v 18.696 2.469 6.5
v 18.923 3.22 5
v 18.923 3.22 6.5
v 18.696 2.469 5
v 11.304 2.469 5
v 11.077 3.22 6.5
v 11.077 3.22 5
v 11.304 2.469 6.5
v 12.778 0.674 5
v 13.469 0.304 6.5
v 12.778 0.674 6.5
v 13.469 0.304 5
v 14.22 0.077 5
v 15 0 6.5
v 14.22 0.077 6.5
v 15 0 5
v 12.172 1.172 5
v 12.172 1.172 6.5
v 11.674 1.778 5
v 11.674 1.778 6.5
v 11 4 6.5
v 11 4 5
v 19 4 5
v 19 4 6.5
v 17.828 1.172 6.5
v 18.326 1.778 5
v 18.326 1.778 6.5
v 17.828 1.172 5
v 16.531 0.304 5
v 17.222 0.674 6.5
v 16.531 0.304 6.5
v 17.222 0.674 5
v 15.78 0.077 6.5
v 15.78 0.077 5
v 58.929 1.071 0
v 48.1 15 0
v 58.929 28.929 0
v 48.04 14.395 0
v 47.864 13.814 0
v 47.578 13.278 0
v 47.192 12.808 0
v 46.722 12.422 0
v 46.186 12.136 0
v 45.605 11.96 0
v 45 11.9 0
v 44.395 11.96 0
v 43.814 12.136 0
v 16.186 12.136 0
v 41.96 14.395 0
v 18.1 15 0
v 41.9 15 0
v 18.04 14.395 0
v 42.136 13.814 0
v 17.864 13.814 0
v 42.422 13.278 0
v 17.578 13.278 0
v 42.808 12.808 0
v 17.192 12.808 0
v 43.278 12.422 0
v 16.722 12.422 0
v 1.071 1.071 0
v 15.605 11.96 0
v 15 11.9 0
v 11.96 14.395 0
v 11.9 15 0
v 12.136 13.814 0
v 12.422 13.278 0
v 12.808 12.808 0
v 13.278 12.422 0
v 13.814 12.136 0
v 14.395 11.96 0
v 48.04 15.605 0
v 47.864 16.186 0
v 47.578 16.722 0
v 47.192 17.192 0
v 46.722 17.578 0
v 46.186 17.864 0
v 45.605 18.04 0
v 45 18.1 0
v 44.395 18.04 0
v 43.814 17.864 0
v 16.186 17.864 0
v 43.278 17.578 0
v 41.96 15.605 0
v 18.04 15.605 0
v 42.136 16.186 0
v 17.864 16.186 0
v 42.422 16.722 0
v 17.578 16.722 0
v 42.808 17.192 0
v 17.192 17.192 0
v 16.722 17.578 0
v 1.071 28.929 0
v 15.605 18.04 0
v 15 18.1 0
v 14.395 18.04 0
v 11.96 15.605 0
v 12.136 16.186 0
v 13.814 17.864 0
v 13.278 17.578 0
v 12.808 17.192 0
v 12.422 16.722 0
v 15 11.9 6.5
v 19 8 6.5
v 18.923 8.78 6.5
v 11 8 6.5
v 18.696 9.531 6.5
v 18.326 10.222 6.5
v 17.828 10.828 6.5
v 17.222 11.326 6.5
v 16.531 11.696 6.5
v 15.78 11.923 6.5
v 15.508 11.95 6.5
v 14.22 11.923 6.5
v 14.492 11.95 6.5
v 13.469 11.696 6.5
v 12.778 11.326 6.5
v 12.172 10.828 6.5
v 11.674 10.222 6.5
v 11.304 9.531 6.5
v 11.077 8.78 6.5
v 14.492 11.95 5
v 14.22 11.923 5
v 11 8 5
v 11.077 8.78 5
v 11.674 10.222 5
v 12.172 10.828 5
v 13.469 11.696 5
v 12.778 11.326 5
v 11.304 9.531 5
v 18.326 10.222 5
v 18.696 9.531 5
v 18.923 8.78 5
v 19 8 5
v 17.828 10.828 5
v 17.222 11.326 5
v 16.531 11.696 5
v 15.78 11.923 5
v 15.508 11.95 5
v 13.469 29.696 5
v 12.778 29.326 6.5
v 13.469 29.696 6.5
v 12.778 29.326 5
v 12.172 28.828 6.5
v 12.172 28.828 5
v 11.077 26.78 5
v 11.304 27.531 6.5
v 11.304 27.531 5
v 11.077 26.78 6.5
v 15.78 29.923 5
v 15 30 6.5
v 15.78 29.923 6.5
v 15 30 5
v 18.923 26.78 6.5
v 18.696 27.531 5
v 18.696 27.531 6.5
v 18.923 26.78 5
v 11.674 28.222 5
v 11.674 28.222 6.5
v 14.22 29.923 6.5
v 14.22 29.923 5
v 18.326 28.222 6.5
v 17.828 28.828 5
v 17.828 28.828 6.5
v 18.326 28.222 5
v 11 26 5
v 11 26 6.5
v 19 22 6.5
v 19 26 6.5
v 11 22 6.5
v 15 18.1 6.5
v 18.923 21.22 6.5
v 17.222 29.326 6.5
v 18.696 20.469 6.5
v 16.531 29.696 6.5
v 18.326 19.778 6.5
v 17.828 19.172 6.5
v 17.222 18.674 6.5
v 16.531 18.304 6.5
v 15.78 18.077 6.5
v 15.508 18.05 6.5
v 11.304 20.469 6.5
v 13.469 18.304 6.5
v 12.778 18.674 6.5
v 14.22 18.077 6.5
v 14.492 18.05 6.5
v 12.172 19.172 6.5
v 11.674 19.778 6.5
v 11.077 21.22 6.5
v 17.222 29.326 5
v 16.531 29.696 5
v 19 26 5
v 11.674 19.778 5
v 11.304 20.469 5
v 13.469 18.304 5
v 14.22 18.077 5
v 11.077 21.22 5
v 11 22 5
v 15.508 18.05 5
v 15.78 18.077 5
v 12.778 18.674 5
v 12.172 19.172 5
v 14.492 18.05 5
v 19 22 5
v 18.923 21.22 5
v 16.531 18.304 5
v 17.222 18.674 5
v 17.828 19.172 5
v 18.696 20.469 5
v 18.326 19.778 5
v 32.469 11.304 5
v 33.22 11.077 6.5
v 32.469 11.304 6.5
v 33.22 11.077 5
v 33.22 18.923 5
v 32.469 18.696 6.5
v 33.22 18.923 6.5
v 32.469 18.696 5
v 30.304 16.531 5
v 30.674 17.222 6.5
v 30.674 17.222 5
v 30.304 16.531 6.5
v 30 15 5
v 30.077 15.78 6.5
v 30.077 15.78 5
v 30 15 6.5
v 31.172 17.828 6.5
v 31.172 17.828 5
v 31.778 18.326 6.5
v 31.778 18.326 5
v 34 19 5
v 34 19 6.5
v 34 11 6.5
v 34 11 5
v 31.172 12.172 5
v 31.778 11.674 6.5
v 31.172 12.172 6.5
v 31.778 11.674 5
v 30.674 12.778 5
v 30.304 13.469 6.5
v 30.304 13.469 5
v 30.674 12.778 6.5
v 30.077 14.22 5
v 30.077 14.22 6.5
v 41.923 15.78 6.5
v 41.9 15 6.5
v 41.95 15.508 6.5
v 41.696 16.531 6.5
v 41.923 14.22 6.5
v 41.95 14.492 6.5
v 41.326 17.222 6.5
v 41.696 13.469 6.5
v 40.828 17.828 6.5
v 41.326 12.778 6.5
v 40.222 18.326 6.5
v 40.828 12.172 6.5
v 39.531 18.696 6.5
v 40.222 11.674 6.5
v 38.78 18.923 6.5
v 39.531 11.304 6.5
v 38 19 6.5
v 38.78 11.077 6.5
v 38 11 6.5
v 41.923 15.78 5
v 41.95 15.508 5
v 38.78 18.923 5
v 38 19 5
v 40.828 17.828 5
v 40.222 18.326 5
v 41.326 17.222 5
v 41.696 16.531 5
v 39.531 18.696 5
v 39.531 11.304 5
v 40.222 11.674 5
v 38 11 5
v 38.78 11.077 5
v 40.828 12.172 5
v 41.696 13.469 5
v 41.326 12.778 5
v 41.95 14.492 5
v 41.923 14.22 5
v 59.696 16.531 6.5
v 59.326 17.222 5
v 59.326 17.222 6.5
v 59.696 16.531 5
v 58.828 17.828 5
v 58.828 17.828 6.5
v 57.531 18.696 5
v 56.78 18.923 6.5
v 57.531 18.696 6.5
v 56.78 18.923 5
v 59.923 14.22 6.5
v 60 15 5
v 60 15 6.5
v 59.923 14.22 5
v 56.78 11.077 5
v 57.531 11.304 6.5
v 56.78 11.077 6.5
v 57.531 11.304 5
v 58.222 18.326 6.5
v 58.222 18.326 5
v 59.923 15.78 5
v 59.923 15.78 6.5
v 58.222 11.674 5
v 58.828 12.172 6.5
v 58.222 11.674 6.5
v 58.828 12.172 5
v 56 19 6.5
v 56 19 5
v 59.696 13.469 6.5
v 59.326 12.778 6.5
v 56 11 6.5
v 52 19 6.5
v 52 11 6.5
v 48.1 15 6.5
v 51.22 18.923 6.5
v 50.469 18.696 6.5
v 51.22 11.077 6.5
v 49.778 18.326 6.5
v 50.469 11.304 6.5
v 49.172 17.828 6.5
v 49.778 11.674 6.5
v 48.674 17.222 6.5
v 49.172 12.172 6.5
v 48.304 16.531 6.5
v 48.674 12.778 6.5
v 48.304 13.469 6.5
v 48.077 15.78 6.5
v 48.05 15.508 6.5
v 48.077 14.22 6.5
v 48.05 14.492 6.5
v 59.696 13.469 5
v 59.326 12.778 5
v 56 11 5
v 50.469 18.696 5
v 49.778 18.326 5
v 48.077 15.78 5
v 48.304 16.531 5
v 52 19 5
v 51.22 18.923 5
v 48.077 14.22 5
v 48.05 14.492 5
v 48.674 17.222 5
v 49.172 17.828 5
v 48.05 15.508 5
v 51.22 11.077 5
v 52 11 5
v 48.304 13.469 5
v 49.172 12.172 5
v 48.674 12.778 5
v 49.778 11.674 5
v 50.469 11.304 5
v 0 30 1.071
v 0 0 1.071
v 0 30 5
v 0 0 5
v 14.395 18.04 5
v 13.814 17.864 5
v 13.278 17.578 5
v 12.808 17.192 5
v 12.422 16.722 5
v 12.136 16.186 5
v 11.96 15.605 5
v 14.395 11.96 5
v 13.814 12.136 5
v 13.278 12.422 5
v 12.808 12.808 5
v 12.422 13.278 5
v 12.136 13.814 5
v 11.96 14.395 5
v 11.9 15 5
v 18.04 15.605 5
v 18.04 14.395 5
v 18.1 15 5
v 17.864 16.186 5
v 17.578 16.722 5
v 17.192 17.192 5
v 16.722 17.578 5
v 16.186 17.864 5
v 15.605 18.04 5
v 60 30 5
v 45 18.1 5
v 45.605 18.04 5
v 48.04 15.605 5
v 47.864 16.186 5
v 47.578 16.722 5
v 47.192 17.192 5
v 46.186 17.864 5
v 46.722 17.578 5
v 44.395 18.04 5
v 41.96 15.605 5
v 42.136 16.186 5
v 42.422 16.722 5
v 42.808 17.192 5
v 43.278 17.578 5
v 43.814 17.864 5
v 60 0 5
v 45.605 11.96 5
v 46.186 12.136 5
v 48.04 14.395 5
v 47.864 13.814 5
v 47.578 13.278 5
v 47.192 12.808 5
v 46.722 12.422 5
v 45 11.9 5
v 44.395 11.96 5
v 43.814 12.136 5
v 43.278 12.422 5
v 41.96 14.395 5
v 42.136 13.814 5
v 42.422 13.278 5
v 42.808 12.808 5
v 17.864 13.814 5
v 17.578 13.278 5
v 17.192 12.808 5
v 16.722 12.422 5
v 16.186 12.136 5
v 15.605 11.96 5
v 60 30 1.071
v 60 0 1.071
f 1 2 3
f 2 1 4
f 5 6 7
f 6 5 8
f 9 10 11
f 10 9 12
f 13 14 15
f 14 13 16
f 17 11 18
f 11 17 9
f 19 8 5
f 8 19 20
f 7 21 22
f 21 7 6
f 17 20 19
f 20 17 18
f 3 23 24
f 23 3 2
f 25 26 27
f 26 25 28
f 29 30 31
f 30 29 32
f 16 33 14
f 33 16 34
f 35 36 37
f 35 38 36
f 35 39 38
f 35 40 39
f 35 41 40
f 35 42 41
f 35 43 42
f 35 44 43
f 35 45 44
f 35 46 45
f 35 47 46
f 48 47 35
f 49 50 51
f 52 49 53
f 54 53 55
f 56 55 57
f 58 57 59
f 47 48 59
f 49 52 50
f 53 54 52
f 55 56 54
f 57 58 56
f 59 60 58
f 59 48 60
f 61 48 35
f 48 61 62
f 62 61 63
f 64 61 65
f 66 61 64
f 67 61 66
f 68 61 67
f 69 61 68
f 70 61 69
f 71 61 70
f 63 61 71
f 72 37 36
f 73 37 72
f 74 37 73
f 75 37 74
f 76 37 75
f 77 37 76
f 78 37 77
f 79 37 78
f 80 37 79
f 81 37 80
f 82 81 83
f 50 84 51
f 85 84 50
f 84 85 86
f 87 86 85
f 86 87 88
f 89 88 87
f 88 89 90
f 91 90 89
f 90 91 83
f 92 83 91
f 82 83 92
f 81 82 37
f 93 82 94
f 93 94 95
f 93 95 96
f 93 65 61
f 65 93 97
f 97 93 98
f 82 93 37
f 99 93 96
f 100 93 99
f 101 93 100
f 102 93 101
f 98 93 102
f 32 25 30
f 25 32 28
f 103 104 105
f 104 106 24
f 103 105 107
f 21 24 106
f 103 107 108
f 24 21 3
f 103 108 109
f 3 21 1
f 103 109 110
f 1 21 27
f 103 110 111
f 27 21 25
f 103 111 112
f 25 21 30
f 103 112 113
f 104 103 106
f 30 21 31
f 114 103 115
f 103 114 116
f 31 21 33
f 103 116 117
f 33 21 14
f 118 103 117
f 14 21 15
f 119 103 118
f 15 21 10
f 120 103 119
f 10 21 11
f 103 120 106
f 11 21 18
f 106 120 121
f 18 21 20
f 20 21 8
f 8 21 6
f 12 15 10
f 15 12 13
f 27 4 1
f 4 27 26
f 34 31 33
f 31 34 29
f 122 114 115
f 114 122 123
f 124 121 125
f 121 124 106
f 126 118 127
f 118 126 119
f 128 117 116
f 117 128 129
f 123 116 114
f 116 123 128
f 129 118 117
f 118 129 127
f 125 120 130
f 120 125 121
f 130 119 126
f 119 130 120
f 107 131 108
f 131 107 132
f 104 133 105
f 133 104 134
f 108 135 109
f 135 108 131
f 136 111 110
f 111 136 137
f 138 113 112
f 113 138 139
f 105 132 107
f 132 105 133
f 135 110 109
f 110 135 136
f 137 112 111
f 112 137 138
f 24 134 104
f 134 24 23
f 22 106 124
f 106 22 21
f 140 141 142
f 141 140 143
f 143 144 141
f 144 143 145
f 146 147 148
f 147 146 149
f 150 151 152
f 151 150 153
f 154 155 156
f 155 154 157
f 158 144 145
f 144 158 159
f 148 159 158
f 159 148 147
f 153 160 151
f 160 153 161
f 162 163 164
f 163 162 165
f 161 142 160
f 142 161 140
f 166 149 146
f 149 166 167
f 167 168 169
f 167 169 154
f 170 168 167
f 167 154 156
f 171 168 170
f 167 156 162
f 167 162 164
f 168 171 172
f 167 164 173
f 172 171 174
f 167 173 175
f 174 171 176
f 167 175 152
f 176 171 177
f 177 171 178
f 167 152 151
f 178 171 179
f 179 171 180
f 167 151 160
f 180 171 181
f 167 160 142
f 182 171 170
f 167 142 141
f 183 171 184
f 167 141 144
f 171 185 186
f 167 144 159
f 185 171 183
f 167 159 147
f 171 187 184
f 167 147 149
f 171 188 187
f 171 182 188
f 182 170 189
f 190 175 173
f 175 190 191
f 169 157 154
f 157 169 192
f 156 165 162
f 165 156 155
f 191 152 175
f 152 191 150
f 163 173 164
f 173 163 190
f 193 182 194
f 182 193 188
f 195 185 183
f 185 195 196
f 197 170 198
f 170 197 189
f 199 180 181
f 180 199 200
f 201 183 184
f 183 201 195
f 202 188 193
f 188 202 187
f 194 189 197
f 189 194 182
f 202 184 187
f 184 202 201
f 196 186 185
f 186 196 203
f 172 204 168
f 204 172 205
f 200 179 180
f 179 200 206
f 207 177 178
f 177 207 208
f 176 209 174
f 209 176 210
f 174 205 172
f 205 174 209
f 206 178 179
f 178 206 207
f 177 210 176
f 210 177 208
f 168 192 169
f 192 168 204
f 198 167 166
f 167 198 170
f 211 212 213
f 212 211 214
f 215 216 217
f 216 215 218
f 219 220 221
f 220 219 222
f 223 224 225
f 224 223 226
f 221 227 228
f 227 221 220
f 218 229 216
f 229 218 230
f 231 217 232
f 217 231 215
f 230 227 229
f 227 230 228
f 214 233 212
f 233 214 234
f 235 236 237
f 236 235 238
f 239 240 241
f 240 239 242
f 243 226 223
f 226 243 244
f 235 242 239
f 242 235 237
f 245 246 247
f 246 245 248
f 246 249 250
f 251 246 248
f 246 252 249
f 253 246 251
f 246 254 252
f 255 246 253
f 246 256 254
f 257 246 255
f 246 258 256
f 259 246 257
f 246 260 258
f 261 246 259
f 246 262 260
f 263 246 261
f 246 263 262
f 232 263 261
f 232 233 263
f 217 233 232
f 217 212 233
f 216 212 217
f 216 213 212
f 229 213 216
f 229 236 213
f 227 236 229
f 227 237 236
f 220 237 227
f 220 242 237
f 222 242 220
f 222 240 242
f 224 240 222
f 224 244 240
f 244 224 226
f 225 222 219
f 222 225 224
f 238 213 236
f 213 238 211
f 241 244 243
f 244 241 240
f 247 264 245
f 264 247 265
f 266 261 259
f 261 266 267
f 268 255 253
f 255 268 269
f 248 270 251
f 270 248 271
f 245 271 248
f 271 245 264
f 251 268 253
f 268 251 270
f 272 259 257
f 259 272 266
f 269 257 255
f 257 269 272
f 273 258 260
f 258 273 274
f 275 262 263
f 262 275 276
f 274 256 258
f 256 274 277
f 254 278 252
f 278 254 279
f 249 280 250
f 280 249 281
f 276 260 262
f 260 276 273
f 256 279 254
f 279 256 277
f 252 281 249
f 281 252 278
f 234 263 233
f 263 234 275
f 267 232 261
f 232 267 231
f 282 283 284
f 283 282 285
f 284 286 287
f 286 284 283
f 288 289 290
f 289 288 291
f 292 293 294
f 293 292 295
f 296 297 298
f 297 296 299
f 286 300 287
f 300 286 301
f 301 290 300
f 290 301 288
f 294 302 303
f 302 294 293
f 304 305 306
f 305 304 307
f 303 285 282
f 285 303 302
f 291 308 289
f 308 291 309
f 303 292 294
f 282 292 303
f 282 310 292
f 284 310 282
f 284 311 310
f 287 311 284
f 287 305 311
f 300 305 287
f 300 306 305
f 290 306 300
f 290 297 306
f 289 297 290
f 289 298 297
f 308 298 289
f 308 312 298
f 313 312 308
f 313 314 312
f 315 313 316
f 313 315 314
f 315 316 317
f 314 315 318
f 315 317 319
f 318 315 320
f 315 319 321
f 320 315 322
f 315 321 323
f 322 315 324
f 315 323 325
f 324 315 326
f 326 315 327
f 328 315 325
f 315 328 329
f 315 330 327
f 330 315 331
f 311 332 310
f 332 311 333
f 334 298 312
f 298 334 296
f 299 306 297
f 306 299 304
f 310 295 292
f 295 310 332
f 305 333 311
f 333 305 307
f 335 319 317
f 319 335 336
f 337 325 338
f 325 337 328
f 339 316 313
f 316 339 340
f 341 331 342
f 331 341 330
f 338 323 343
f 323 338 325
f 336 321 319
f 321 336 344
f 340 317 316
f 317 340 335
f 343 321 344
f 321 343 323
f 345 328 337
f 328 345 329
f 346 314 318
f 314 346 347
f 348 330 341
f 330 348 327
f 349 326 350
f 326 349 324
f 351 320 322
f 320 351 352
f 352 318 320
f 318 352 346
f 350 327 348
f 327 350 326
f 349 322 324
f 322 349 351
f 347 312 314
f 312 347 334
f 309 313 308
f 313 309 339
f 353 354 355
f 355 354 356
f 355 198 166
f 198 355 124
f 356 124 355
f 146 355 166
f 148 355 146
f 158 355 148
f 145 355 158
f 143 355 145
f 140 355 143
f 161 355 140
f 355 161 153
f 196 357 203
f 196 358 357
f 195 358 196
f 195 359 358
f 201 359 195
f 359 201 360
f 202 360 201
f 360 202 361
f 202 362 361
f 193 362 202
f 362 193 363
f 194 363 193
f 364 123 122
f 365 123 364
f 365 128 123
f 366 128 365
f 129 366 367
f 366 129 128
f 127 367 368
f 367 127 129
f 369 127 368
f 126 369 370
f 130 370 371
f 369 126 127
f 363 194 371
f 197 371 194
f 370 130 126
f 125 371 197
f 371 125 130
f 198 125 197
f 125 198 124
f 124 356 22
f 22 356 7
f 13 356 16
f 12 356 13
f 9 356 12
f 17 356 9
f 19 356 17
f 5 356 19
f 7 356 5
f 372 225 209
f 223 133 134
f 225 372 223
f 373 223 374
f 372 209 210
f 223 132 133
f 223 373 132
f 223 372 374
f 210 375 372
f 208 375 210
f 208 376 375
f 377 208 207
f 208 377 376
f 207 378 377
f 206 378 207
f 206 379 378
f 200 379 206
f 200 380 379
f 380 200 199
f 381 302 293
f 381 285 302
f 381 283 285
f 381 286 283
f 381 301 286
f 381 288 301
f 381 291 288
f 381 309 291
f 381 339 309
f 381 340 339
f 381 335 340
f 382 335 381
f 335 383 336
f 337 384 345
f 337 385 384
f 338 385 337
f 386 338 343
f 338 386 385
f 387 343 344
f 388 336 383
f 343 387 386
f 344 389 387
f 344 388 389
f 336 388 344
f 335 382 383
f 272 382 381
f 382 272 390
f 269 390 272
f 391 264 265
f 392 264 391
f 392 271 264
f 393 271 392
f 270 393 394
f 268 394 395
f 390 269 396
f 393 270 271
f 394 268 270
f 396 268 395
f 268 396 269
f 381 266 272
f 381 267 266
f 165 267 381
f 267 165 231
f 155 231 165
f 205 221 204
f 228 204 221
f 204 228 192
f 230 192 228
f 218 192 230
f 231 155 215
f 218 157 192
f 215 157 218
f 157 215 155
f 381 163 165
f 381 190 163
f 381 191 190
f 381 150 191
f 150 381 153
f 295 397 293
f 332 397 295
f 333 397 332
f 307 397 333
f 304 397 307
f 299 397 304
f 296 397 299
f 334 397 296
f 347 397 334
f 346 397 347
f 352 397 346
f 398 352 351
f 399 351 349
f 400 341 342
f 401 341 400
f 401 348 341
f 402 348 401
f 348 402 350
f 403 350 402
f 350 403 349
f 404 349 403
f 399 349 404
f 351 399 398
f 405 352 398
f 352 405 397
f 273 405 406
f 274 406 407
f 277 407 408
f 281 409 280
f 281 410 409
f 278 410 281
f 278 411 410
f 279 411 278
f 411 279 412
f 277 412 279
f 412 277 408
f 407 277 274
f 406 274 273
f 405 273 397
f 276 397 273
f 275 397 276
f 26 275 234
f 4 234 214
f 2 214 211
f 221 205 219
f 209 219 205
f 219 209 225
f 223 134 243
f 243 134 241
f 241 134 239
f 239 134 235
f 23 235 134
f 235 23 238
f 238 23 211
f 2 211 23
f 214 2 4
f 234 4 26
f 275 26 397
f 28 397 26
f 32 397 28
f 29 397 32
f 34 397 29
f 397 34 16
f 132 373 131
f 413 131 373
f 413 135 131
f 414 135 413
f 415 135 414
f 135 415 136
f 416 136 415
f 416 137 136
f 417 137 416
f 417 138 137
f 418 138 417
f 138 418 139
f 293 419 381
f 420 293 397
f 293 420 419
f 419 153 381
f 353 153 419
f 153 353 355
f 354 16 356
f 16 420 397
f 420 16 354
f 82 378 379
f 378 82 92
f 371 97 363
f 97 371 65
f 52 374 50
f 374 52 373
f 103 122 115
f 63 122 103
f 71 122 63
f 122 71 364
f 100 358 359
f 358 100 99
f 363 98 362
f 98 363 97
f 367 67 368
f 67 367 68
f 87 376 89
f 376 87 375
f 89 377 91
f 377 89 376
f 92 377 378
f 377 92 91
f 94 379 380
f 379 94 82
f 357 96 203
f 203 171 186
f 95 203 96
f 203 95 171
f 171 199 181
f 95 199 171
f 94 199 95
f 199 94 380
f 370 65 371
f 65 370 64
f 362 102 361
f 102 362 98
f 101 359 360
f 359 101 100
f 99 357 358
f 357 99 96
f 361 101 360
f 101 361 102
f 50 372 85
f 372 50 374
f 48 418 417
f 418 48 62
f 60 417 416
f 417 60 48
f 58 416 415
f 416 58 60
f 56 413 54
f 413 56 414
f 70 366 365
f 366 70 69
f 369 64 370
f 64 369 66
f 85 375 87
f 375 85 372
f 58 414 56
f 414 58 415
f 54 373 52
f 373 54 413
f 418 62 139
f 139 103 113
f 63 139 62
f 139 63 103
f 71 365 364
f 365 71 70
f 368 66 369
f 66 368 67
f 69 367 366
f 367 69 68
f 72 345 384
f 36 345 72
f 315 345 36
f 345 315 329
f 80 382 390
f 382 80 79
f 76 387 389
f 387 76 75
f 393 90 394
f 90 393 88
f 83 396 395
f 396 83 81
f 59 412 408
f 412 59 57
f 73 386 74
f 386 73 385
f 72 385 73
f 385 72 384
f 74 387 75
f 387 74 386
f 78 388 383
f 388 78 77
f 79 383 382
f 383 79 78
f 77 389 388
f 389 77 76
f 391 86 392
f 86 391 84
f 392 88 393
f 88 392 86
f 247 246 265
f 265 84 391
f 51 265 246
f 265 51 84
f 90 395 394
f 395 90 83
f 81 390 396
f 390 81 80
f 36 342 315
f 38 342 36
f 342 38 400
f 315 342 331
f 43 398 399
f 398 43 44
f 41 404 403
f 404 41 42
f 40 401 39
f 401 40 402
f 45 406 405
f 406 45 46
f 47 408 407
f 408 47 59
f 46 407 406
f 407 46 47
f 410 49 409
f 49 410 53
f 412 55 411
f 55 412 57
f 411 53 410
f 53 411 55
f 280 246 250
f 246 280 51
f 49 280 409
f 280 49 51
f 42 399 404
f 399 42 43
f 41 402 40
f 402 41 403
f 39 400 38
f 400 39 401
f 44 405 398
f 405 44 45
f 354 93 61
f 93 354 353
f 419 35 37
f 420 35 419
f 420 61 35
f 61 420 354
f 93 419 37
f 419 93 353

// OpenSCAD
// file: ../configuration.scad
/*
	Konfiguracni soubor 3D tiskarny RebeliX X2
	
	Sledujte nas na:		  
			www.RepRap4U.cz
			www.facebook.com/RebeliX.cz
			https://twitter.com/reprap4u
			https://plus.google.com/+Reprap4uCz-3Dtiskarna-RebeliX
*/

/*================ Slic3r nastaveni ==========================*/

// Vyska vrstvy pro tisknuti dilu [mm]
layer_height = 0.3;

// Sirka vytlacovaneho materialu [mm]
extrusion_width = 0.66; //Slic3r->Print Settings->Advanced->Default extrusion width

/*==================== M6 sroub ==============================*/

// Rezerva prumeru hlavy sroubu [mm]
space = 1;

// Prumer hlavy M6 sroubu (pricte se rezerva) [mm]
M6_head_diameter = 10.6+space;
//M6_head_diameter = 12+space;

// Vyska hlavy M6 sroubu (dulezite pro zapusteni hlavy sroubu do plastu) [mm]
M6_head_height = 3.6;
//M6_head_height = 4.5;

// Delka sroubu M6 [mm]
// M6x12
M6_lenght = 12;

/*=================== Nastaveni dilu =========================*/

// Posun Z zakladny
z_base_offset = 11;

// Tloustka rohovych spojek
// 5 mm => sroub M6x14 s podlozkou
// 3 mm => sroub M6x12 s podlozkou
coupler_thickness = 5;

// Prumer 8mm tyce
rod_8mm_d = 8.2;

// Posun drzacku mezi x-motor a x-end
x_holder_position = 6.5;

/*======================== Motory ============================*/

// Delka motoru (ovlivni dily a delky tyci pro osy Z a Y)
//SX17-1003LQFE (doporuceno hlavne na osu Z)
motor_length = 29.5;
//SX17-1003 (doporuceno hlavne na osu Z), SX17-0503LQEF
//motor_length = 34;
//SX17-1005
//motor_length = 40;
//SX17-0905 - zde je jiz problem s velkou vyskou motoru na ose Z - musi se upravit endstop-holder
//motor_length = 48;

/*================ Remeny a remenicky ========================*/

// GT2 
belt_tooth_distance = 2;
belt_tooth_ratio = 0.5;

// T2.5
//belt_tooth_distance = 2.5;
//belt_tooth_ratio = 0.68;
// main file
// RebeliX
//
// corner-coupler
// GNU GPL v3
// Martin Neruda <neruda@reprap4u.cz>
// http://www.reprap4u.cz
// Inspired by Rebel II

include <../configuration.scad>

module drazka(){
	translate([-30/2+4,0,0]) cylinder(r=4,h=coupler_thickness+1.5,$fn=32,center=true);
	translate([-30/2+8,0,0]) cylinder(r=4,h=coupler_thickness+1.5,$fn=32,center=true);
	translate([-30/2+6,0,0]) cube([4,8,coupler_thickness+1.5],center=true);
	
	translate([30/2-4,0,0])cylinder(r=4,h=coupler_thickness+1.5,$fn=32,center=true);
	translate([30/2-8,0,0])cylinder(r=4,h=coupler_thickness+1.5,$fn=32,center=true);
	translate([30/2-6,0,0]) cube([4,8,coupler_thickness+1.5],center=true);
}

module corner_coupler(){
  difference(){
	union(){
		cube([60,30,coupler_thickness]);
		translate([15,30/2,(coupler_thickness+1.5)/2]) rotate([0,0,90]) drazka();
		translate([45,30/2,(coupler_thickness+1.5)/2]) drazka();
	}
		
	// Otvory pro srouby
	translate([15,30/2,0])cylinder(h=20,r=3.1,$fn=32,center=true);
	translate([45,30/2,0])cylinder(h=20,r=3.1,$fn=32,center=true);
		
	// Zalomene hrany
	translate([-1,-0.1,-5]) rotate([0,-45,0]) cube([5,40,5]);
	translate([61,-0.1,-5]) rotate([0,-45,0]) cube([5,40,5]);
	translate([-0.1,-1,-5]) rotate([45,0,0]) cube([70,5,5]);
	translate([-0.1,31,-5]) rotate([45,0,0]) cube([70,5,5]);
  }
}

corner_coupler();
